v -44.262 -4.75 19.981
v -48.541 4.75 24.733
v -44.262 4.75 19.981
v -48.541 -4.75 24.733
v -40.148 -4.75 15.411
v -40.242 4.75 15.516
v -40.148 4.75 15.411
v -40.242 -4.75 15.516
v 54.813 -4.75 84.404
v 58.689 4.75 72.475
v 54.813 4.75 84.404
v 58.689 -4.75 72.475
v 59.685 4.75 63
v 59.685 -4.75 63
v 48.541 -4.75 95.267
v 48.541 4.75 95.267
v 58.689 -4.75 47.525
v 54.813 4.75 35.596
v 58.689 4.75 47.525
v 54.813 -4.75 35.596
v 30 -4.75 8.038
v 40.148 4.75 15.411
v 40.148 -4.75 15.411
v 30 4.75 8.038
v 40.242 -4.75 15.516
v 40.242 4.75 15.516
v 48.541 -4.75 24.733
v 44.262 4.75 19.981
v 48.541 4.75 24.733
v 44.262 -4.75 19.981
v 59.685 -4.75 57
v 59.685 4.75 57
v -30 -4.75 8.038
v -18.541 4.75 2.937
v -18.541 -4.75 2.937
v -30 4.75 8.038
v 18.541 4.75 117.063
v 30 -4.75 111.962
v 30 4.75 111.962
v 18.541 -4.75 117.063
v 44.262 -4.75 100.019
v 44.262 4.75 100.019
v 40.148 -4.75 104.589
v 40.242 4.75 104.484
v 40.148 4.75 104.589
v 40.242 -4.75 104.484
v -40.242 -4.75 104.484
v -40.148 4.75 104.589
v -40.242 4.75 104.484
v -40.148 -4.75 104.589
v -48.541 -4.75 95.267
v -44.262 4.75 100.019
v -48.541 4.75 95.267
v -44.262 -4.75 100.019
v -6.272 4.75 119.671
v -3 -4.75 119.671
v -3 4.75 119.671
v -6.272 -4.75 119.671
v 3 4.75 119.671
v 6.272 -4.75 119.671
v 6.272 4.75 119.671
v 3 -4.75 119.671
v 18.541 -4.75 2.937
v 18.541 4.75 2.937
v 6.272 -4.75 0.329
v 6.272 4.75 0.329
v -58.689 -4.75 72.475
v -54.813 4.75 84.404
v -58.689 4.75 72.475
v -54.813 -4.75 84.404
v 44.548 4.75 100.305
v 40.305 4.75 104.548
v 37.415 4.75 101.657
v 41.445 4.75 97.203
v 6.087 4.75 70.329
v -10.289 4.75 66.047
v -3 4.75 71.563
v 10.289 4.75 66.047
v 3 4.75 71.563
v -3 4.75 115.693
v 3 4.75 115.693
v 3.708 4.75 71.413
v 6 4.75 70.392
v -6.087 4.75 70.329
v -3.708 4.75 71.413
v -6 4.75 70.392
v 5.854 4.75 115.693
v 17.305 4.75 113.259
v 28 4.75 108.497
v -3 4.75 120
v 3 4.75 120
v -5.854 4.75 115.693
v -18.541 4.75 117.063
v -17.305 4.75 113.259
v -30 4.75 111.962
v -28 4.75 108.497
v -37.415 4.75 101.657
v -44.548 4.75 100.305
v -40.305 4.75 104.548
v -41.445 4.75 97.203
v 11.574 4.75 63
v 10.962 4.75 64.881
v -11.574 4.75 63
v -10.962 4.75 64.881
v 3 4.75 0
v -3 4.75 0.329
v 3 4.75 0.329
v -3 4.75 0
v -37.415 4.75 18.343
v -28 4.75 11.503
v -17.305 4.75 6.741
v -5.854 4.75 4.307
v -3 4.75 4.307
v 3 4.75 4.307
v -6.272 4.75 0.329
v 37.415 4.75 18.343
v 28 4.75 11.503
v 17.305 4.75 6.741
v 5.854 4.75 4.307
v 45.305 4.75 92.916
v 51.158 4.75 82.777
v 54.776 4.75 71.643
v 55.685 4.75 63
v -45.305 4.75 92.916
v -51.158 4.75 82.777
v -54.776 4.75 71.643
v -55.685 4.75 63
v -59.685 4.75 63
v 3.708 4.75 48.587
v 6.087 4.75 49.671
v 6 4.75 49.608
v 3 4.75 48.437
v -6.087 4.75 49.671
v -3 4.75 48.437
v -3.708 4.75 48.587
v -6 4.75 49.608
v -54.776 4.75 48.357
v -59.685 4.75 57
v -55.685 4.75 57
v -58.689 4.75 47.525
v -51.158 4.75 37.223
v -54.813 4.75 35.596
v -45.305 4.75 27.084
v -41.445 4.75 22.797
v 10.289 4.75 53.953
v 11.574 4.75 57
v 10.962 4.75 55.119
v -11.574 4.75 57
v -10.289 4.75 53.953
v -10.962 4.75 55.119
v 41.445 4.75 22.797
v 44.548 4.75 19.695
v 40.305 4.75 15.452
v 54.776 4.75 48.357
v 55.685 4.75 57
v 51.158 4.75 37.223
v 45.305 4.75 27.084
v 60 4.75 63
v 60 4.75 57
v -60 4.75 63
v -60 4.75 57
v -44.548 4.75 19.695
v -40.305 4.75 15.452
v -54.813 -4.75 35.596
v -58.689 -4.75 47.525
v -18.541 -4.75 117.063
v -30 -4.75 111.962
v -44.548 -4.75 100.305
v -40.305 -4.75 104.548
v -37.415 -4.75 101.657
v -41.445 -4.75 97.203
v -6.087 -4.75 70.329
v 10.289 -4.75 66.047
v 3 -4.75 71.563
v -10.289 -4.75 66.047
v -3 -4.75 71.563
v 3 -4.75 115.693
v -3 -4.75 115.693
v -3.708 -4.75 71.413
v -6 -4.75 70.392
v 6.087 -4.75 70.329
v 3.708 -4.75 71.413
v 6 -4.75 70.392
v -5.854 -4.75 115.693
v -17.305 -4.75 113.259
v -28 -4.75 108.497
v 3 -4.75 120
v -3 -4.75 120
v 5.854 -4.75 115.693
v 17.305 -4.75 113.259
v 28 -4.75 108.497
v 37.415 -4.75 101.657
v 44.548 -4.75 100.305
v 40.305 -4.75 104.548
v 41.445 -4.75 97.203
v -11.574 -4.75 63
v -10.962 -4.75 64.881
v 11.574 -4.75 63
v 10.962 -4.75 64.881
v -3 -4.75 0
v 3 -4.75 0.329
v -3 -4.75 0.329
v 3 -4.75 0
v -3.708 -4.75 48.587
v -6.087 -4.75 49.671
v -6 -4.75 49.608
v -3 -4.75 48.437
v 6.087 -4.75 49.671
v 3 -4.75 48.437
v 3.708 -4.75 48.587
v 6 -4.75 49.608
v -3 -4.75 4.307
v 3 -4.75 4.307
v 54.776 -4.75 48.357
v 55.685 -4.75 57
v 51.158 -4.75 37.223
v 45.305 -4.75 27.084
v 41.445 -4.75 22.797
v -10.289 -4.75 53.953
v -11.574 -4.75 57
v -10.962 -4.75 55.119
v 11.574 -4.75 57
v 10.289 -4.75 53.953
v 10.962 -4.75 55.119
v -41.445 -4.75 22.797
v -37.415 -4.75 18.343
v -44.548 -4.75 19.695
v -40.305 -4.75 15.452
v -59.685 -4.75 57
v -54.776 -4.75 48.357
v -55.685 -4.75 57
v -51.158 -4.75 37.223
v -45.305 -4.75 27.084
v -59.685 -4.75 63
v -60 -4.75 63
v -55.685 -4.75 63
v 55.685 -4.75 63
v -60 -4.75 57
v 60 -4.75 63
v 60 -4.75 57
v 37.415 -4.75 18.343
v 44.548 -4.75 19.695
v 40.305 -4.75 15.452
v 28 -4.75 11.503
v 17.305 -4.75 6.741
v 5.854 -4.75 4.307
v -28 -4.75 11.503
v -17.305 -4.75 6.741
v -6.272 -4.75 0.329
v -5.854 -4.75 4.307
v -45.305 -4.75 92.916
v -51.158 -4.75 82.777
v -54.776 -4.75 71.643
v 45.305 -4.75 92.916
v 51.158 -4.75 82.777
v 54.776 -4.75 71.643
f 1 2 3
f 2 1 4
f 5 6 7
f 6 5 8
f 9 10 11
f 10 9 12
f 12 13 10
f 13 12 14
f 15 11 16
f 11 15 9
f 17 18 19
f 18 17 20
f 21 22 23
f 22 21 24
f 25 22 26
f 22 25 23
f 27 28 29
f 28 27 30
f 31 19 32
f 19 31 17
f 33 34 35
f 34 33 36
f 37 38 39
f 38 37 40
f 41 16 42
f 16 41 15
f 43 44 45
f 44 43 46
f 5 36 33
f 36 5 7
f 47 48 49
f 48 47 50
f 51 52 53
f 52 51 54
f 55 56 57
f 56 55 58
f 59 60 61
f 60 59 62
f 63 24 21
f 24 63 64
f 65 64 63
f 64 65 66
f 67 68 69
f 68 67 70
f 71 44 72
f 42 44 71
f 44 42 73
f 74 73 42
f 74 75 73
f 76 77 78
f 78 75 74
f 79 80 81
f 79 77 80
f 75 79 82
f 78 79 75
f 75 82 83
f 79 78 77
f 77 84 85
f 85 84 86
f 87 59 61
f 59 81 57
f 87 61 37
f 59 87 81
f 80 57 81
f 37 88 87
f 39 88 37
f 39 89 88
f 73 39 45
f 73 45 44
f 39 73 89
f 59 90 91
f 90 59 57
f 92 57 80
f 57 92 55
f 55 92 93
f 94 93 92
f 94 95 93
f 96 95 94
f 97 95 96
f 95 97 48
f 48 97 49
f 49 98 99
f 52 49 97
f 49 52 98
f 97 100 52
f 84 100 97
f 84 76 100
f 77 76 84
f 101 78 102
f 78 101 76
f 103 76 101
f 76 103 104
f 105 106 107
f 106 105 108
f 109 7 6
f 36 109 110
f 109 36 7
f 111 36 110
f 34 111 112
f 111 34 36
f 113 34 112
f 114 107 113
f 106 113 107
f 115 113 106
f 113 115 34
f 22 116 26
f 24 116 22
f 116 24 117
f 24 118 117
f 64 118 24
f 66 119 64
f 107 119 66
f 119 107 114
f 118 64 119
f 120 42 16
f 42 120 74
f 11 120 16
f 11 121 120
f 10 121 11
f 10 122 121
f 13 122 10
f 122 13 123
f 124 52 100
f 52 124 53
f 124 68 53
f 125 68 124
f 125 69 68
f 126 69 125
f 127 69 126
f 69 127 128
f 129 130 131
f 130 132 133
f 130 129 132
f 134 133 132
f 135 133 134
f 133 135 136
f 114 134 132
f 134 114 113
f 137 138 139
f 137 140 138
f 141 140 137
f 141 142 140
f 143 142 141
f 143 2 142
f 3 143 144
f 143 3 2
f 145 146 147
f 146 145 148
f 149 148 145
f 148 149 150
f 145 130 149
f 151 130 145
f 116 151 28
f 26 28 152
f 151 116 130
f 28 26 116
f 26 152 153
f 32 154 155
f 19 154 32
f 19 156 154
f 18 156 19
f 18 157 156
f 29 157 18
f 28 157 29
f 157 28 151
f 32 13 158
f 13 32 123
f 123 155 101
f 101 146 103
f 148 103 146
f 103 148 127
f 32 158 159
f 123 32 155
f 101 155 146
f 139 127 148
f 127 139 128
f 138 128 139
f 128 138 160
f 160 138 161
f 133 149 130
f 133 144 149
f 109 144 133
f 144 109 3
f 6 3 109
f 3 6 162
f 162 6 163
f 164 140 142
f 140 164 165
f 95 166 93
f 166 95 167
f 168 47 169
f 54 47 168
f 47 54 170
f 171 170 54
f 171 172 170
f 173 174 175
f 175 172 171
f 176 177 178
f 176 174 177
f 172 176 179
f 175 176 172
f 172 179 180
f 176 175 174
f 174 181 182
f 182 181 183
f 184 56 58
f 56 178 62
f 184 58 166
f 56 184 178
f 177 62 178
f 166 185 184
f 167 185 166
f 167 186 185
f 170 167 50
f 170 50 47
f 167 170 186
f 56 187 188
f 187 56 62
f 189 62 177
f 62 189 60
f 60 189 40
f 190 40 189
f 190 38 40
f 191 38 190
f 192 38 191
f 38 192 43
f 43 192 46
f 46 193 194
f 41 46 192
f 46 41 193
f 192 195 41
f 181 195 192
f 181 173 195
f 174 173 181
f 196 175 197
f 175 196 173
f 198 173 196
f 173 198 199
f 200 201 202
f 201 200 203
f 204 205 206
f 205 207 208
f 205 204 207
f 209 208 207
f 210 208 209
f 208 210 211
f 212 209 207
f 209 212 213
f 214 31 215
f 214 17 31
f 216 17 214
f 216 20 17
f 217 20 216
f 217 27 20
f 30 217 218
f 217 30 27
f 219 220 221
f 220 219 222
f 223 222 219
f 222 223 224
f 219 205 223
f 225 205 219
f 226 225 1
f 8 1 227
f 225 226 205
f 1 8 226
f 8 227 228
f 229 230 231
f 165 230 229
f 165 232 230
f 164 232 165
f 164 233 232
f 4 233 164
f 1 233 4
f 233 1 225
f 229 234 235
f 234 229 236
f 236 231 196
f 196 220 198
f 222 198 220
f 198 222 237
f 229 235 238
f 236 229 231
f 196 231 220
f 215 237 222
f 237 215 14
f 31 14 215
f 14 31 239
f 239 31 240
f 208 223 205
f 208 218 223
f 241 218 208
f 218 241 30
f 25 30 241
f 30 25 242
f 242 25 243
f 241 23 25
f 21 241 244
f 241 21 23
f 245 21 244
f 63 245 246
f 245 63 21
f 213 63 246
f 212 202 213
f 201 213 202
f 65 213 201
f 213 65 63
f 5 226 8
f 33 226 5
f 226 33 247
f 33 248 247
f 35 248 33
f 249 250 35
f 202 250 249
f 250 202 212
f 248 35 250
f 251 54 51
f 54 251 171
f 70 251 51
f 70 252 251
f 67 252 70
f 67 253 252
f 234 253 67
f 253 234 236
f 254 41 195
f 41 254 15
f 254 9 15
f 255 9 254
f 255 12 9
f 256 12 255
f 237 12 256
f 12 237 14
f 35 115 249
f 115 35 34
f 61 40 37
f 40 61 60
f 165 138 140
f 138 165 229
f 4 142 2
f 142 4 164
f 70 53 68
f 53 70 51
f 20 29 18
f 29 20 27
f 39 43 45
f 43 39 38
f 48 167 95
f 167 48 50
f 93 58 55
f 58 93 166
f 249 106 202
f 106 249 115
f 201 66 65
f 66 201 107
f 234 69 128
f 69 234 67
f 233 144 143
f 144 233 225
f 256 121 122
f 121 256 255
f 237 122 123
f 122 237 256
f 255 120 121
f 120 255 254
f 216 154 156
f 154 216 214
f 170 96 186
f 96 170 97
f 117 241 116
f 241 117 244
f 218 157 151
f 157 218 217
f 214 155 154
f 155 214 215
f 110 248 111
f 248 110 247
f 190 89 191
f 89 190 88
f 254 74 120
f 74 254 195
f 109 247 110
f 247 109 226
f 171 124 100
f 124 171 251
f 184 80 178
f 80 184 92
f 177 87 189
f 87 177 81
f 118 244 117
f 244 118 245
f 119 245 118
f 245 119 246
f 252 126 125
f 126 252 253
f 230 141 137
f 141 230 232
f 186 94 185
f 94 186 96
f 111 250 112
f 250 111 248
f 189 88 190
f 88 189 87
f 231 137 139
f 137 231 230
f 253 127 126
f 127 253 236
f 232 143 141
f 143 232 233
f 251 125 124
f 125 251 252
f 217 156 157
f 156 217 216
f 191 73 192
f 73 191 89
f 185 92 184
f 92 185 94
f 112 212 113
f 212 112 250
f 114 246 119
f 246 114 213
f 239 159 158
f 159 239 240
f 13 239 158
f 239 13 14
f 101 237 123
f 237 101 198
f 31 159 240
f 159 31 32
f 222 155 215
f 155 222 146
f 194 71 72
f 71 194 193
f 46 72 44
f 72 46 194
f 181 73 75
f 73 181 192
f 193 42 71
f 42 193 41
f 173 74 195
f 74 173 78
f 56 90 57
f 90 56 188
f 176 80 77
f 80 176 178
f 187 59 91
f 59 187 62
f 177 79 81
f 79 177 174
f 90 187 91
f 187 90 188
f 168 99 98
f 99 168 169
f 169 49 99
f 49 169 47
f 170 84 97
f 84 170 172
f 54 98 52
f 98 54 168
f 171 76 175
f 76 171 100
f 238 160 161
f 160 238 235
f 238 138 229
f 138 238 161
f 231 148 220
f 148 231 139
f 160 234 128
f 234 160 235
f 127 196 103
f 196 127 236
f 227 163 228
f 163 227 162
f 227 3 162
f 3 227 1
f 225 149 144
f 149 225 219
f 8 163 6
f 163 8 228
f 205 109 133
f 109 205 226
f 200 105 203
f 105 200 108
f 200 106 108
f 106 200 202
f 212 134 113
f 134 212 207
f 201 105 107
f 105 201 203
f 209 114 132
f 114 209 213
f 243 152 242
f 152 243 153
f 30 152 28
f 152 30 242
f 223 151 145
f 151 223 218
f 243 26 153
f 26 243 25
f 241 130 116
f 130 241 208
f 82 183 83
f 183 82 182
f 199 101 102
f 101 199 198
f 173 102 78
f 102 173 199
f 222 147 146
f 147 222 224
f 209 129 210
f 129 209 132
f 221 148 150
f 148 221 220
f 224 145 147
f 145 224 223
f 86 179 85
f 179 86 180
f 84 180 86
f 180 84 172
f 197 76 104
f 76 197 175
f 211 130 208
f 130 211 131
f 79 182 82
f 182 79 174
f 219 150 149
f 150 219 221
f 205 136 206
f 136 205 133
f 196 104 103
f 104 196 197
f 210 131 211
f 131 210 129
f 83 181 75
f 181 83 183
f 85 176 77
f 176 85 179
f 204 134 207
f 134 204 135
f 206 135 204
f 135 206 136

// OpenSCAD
/* doodle-meta {"version":1,"parameters":{"outer_diameter":{"label":"Outer Diameter","description":"Diameter of the wheel rim","unit":"mm","feature":"rim"},"wheel_thickness":{"label":"Wheel Thickness","description":"Width of the wheel along the axle axis","unit":"mm","feature":"body"},"hub_diameter":{"label":"Hub Diameter","description":"Diameter of the central hub","unit":"mm","feature":"hub"},"spoke_count":{"label":"Spoke Count","description":"Number of radial spokes","unit":"count","feature":"spokes"},"spoke_width":{"label":"Spoke Width","description":"Width of each spoke","unit":"mm","feature":"spokes"}},"features":{"rim":{"kind":"dimension","axis":"x","label":"Outer Diameter"},"body":{"kind":"dimension","axis":"y","label":"Wheel Thickness"},"hub":{"kind":"region","label":"Hub","min":[0,0,0],"max":[{"parameter":"hub_diameter","scale":0.5},{"parameter":"wheel_thickness","scale":0.5},{"parameter":"wheel_thickness","scale":0.5}]},"spokes":{"kind":"region","label":"Spokes","min":[{"parameter":"hub_diameter","scale":0.5},{"parameter":"wheel_thickness","scale":0.5},{"parameter":"wheel_thickness","scale":0.5}],[{"parameter":"outer_diameter","scale":0.5},{"parameter":"wheel_thickness","scale":0.5},{"parameter":"wheel_thickness","scale":0.5}]}}} */

// Parameters
outer_diameter = 120.0;
wheel_thickness = 9.5;
hub_diameter = 24.0;
spoke_count = 8;
spoke_width = 6.0;

// Derived dimensions
outer_radius = outer_diameter / 2.0;
hub_radius = hub_diameter / 2.0;
rim_inner_radius = outer_radius - 4.0;
spoke_length = outer_radius; // Extend to outer radius to ensure overlap with rim

// Modules
module wheel_body() {
    // Rim: Outer cylinder minus inner cylinder
    difference() {
        cylinder(h = wheel_thickness, r = outer_radius, center = true);
        cylinder(h = wheel_thickness + 0.1, r = rim_inner_radius, center = true);
    }
    
    // Hub: Central cylinder
    cylinder(h = wheel_thickness, r = hub_radius, center = true);
    
    // Spokes: Array of rectangular bars
    for (i = [0 : spoke_count - 1]) {
        rotate([0, 0, i * (360.0 / spoke_count)]) {
            // Translate so the spoke starts at the hub center and extends to the rim
            // The cube is centered at [spoke_length/2, 0, 0] relative to the rotation
            // This ensures it spans from 0 to spoke_length (which is outer_radius)
            translate([spoke_length / 2.0, 0, 0]) {
                cube([spoke_length, spoke_width, wheel_thickness], center = true);
            }
        }
    }
}

// Main Design
// Rotate the wheel assembly by 90 degrees around the X-axis to orient the wheel face in the XZ plane (Front view)
// and the thickness along the Y-axis (Right view).
// Then translate so the lowest point sits on Z=0.
translate([0, 0, outer_radius]) {
    rotate([90, 0, 0]) {
        wheel_body();
    }
}
